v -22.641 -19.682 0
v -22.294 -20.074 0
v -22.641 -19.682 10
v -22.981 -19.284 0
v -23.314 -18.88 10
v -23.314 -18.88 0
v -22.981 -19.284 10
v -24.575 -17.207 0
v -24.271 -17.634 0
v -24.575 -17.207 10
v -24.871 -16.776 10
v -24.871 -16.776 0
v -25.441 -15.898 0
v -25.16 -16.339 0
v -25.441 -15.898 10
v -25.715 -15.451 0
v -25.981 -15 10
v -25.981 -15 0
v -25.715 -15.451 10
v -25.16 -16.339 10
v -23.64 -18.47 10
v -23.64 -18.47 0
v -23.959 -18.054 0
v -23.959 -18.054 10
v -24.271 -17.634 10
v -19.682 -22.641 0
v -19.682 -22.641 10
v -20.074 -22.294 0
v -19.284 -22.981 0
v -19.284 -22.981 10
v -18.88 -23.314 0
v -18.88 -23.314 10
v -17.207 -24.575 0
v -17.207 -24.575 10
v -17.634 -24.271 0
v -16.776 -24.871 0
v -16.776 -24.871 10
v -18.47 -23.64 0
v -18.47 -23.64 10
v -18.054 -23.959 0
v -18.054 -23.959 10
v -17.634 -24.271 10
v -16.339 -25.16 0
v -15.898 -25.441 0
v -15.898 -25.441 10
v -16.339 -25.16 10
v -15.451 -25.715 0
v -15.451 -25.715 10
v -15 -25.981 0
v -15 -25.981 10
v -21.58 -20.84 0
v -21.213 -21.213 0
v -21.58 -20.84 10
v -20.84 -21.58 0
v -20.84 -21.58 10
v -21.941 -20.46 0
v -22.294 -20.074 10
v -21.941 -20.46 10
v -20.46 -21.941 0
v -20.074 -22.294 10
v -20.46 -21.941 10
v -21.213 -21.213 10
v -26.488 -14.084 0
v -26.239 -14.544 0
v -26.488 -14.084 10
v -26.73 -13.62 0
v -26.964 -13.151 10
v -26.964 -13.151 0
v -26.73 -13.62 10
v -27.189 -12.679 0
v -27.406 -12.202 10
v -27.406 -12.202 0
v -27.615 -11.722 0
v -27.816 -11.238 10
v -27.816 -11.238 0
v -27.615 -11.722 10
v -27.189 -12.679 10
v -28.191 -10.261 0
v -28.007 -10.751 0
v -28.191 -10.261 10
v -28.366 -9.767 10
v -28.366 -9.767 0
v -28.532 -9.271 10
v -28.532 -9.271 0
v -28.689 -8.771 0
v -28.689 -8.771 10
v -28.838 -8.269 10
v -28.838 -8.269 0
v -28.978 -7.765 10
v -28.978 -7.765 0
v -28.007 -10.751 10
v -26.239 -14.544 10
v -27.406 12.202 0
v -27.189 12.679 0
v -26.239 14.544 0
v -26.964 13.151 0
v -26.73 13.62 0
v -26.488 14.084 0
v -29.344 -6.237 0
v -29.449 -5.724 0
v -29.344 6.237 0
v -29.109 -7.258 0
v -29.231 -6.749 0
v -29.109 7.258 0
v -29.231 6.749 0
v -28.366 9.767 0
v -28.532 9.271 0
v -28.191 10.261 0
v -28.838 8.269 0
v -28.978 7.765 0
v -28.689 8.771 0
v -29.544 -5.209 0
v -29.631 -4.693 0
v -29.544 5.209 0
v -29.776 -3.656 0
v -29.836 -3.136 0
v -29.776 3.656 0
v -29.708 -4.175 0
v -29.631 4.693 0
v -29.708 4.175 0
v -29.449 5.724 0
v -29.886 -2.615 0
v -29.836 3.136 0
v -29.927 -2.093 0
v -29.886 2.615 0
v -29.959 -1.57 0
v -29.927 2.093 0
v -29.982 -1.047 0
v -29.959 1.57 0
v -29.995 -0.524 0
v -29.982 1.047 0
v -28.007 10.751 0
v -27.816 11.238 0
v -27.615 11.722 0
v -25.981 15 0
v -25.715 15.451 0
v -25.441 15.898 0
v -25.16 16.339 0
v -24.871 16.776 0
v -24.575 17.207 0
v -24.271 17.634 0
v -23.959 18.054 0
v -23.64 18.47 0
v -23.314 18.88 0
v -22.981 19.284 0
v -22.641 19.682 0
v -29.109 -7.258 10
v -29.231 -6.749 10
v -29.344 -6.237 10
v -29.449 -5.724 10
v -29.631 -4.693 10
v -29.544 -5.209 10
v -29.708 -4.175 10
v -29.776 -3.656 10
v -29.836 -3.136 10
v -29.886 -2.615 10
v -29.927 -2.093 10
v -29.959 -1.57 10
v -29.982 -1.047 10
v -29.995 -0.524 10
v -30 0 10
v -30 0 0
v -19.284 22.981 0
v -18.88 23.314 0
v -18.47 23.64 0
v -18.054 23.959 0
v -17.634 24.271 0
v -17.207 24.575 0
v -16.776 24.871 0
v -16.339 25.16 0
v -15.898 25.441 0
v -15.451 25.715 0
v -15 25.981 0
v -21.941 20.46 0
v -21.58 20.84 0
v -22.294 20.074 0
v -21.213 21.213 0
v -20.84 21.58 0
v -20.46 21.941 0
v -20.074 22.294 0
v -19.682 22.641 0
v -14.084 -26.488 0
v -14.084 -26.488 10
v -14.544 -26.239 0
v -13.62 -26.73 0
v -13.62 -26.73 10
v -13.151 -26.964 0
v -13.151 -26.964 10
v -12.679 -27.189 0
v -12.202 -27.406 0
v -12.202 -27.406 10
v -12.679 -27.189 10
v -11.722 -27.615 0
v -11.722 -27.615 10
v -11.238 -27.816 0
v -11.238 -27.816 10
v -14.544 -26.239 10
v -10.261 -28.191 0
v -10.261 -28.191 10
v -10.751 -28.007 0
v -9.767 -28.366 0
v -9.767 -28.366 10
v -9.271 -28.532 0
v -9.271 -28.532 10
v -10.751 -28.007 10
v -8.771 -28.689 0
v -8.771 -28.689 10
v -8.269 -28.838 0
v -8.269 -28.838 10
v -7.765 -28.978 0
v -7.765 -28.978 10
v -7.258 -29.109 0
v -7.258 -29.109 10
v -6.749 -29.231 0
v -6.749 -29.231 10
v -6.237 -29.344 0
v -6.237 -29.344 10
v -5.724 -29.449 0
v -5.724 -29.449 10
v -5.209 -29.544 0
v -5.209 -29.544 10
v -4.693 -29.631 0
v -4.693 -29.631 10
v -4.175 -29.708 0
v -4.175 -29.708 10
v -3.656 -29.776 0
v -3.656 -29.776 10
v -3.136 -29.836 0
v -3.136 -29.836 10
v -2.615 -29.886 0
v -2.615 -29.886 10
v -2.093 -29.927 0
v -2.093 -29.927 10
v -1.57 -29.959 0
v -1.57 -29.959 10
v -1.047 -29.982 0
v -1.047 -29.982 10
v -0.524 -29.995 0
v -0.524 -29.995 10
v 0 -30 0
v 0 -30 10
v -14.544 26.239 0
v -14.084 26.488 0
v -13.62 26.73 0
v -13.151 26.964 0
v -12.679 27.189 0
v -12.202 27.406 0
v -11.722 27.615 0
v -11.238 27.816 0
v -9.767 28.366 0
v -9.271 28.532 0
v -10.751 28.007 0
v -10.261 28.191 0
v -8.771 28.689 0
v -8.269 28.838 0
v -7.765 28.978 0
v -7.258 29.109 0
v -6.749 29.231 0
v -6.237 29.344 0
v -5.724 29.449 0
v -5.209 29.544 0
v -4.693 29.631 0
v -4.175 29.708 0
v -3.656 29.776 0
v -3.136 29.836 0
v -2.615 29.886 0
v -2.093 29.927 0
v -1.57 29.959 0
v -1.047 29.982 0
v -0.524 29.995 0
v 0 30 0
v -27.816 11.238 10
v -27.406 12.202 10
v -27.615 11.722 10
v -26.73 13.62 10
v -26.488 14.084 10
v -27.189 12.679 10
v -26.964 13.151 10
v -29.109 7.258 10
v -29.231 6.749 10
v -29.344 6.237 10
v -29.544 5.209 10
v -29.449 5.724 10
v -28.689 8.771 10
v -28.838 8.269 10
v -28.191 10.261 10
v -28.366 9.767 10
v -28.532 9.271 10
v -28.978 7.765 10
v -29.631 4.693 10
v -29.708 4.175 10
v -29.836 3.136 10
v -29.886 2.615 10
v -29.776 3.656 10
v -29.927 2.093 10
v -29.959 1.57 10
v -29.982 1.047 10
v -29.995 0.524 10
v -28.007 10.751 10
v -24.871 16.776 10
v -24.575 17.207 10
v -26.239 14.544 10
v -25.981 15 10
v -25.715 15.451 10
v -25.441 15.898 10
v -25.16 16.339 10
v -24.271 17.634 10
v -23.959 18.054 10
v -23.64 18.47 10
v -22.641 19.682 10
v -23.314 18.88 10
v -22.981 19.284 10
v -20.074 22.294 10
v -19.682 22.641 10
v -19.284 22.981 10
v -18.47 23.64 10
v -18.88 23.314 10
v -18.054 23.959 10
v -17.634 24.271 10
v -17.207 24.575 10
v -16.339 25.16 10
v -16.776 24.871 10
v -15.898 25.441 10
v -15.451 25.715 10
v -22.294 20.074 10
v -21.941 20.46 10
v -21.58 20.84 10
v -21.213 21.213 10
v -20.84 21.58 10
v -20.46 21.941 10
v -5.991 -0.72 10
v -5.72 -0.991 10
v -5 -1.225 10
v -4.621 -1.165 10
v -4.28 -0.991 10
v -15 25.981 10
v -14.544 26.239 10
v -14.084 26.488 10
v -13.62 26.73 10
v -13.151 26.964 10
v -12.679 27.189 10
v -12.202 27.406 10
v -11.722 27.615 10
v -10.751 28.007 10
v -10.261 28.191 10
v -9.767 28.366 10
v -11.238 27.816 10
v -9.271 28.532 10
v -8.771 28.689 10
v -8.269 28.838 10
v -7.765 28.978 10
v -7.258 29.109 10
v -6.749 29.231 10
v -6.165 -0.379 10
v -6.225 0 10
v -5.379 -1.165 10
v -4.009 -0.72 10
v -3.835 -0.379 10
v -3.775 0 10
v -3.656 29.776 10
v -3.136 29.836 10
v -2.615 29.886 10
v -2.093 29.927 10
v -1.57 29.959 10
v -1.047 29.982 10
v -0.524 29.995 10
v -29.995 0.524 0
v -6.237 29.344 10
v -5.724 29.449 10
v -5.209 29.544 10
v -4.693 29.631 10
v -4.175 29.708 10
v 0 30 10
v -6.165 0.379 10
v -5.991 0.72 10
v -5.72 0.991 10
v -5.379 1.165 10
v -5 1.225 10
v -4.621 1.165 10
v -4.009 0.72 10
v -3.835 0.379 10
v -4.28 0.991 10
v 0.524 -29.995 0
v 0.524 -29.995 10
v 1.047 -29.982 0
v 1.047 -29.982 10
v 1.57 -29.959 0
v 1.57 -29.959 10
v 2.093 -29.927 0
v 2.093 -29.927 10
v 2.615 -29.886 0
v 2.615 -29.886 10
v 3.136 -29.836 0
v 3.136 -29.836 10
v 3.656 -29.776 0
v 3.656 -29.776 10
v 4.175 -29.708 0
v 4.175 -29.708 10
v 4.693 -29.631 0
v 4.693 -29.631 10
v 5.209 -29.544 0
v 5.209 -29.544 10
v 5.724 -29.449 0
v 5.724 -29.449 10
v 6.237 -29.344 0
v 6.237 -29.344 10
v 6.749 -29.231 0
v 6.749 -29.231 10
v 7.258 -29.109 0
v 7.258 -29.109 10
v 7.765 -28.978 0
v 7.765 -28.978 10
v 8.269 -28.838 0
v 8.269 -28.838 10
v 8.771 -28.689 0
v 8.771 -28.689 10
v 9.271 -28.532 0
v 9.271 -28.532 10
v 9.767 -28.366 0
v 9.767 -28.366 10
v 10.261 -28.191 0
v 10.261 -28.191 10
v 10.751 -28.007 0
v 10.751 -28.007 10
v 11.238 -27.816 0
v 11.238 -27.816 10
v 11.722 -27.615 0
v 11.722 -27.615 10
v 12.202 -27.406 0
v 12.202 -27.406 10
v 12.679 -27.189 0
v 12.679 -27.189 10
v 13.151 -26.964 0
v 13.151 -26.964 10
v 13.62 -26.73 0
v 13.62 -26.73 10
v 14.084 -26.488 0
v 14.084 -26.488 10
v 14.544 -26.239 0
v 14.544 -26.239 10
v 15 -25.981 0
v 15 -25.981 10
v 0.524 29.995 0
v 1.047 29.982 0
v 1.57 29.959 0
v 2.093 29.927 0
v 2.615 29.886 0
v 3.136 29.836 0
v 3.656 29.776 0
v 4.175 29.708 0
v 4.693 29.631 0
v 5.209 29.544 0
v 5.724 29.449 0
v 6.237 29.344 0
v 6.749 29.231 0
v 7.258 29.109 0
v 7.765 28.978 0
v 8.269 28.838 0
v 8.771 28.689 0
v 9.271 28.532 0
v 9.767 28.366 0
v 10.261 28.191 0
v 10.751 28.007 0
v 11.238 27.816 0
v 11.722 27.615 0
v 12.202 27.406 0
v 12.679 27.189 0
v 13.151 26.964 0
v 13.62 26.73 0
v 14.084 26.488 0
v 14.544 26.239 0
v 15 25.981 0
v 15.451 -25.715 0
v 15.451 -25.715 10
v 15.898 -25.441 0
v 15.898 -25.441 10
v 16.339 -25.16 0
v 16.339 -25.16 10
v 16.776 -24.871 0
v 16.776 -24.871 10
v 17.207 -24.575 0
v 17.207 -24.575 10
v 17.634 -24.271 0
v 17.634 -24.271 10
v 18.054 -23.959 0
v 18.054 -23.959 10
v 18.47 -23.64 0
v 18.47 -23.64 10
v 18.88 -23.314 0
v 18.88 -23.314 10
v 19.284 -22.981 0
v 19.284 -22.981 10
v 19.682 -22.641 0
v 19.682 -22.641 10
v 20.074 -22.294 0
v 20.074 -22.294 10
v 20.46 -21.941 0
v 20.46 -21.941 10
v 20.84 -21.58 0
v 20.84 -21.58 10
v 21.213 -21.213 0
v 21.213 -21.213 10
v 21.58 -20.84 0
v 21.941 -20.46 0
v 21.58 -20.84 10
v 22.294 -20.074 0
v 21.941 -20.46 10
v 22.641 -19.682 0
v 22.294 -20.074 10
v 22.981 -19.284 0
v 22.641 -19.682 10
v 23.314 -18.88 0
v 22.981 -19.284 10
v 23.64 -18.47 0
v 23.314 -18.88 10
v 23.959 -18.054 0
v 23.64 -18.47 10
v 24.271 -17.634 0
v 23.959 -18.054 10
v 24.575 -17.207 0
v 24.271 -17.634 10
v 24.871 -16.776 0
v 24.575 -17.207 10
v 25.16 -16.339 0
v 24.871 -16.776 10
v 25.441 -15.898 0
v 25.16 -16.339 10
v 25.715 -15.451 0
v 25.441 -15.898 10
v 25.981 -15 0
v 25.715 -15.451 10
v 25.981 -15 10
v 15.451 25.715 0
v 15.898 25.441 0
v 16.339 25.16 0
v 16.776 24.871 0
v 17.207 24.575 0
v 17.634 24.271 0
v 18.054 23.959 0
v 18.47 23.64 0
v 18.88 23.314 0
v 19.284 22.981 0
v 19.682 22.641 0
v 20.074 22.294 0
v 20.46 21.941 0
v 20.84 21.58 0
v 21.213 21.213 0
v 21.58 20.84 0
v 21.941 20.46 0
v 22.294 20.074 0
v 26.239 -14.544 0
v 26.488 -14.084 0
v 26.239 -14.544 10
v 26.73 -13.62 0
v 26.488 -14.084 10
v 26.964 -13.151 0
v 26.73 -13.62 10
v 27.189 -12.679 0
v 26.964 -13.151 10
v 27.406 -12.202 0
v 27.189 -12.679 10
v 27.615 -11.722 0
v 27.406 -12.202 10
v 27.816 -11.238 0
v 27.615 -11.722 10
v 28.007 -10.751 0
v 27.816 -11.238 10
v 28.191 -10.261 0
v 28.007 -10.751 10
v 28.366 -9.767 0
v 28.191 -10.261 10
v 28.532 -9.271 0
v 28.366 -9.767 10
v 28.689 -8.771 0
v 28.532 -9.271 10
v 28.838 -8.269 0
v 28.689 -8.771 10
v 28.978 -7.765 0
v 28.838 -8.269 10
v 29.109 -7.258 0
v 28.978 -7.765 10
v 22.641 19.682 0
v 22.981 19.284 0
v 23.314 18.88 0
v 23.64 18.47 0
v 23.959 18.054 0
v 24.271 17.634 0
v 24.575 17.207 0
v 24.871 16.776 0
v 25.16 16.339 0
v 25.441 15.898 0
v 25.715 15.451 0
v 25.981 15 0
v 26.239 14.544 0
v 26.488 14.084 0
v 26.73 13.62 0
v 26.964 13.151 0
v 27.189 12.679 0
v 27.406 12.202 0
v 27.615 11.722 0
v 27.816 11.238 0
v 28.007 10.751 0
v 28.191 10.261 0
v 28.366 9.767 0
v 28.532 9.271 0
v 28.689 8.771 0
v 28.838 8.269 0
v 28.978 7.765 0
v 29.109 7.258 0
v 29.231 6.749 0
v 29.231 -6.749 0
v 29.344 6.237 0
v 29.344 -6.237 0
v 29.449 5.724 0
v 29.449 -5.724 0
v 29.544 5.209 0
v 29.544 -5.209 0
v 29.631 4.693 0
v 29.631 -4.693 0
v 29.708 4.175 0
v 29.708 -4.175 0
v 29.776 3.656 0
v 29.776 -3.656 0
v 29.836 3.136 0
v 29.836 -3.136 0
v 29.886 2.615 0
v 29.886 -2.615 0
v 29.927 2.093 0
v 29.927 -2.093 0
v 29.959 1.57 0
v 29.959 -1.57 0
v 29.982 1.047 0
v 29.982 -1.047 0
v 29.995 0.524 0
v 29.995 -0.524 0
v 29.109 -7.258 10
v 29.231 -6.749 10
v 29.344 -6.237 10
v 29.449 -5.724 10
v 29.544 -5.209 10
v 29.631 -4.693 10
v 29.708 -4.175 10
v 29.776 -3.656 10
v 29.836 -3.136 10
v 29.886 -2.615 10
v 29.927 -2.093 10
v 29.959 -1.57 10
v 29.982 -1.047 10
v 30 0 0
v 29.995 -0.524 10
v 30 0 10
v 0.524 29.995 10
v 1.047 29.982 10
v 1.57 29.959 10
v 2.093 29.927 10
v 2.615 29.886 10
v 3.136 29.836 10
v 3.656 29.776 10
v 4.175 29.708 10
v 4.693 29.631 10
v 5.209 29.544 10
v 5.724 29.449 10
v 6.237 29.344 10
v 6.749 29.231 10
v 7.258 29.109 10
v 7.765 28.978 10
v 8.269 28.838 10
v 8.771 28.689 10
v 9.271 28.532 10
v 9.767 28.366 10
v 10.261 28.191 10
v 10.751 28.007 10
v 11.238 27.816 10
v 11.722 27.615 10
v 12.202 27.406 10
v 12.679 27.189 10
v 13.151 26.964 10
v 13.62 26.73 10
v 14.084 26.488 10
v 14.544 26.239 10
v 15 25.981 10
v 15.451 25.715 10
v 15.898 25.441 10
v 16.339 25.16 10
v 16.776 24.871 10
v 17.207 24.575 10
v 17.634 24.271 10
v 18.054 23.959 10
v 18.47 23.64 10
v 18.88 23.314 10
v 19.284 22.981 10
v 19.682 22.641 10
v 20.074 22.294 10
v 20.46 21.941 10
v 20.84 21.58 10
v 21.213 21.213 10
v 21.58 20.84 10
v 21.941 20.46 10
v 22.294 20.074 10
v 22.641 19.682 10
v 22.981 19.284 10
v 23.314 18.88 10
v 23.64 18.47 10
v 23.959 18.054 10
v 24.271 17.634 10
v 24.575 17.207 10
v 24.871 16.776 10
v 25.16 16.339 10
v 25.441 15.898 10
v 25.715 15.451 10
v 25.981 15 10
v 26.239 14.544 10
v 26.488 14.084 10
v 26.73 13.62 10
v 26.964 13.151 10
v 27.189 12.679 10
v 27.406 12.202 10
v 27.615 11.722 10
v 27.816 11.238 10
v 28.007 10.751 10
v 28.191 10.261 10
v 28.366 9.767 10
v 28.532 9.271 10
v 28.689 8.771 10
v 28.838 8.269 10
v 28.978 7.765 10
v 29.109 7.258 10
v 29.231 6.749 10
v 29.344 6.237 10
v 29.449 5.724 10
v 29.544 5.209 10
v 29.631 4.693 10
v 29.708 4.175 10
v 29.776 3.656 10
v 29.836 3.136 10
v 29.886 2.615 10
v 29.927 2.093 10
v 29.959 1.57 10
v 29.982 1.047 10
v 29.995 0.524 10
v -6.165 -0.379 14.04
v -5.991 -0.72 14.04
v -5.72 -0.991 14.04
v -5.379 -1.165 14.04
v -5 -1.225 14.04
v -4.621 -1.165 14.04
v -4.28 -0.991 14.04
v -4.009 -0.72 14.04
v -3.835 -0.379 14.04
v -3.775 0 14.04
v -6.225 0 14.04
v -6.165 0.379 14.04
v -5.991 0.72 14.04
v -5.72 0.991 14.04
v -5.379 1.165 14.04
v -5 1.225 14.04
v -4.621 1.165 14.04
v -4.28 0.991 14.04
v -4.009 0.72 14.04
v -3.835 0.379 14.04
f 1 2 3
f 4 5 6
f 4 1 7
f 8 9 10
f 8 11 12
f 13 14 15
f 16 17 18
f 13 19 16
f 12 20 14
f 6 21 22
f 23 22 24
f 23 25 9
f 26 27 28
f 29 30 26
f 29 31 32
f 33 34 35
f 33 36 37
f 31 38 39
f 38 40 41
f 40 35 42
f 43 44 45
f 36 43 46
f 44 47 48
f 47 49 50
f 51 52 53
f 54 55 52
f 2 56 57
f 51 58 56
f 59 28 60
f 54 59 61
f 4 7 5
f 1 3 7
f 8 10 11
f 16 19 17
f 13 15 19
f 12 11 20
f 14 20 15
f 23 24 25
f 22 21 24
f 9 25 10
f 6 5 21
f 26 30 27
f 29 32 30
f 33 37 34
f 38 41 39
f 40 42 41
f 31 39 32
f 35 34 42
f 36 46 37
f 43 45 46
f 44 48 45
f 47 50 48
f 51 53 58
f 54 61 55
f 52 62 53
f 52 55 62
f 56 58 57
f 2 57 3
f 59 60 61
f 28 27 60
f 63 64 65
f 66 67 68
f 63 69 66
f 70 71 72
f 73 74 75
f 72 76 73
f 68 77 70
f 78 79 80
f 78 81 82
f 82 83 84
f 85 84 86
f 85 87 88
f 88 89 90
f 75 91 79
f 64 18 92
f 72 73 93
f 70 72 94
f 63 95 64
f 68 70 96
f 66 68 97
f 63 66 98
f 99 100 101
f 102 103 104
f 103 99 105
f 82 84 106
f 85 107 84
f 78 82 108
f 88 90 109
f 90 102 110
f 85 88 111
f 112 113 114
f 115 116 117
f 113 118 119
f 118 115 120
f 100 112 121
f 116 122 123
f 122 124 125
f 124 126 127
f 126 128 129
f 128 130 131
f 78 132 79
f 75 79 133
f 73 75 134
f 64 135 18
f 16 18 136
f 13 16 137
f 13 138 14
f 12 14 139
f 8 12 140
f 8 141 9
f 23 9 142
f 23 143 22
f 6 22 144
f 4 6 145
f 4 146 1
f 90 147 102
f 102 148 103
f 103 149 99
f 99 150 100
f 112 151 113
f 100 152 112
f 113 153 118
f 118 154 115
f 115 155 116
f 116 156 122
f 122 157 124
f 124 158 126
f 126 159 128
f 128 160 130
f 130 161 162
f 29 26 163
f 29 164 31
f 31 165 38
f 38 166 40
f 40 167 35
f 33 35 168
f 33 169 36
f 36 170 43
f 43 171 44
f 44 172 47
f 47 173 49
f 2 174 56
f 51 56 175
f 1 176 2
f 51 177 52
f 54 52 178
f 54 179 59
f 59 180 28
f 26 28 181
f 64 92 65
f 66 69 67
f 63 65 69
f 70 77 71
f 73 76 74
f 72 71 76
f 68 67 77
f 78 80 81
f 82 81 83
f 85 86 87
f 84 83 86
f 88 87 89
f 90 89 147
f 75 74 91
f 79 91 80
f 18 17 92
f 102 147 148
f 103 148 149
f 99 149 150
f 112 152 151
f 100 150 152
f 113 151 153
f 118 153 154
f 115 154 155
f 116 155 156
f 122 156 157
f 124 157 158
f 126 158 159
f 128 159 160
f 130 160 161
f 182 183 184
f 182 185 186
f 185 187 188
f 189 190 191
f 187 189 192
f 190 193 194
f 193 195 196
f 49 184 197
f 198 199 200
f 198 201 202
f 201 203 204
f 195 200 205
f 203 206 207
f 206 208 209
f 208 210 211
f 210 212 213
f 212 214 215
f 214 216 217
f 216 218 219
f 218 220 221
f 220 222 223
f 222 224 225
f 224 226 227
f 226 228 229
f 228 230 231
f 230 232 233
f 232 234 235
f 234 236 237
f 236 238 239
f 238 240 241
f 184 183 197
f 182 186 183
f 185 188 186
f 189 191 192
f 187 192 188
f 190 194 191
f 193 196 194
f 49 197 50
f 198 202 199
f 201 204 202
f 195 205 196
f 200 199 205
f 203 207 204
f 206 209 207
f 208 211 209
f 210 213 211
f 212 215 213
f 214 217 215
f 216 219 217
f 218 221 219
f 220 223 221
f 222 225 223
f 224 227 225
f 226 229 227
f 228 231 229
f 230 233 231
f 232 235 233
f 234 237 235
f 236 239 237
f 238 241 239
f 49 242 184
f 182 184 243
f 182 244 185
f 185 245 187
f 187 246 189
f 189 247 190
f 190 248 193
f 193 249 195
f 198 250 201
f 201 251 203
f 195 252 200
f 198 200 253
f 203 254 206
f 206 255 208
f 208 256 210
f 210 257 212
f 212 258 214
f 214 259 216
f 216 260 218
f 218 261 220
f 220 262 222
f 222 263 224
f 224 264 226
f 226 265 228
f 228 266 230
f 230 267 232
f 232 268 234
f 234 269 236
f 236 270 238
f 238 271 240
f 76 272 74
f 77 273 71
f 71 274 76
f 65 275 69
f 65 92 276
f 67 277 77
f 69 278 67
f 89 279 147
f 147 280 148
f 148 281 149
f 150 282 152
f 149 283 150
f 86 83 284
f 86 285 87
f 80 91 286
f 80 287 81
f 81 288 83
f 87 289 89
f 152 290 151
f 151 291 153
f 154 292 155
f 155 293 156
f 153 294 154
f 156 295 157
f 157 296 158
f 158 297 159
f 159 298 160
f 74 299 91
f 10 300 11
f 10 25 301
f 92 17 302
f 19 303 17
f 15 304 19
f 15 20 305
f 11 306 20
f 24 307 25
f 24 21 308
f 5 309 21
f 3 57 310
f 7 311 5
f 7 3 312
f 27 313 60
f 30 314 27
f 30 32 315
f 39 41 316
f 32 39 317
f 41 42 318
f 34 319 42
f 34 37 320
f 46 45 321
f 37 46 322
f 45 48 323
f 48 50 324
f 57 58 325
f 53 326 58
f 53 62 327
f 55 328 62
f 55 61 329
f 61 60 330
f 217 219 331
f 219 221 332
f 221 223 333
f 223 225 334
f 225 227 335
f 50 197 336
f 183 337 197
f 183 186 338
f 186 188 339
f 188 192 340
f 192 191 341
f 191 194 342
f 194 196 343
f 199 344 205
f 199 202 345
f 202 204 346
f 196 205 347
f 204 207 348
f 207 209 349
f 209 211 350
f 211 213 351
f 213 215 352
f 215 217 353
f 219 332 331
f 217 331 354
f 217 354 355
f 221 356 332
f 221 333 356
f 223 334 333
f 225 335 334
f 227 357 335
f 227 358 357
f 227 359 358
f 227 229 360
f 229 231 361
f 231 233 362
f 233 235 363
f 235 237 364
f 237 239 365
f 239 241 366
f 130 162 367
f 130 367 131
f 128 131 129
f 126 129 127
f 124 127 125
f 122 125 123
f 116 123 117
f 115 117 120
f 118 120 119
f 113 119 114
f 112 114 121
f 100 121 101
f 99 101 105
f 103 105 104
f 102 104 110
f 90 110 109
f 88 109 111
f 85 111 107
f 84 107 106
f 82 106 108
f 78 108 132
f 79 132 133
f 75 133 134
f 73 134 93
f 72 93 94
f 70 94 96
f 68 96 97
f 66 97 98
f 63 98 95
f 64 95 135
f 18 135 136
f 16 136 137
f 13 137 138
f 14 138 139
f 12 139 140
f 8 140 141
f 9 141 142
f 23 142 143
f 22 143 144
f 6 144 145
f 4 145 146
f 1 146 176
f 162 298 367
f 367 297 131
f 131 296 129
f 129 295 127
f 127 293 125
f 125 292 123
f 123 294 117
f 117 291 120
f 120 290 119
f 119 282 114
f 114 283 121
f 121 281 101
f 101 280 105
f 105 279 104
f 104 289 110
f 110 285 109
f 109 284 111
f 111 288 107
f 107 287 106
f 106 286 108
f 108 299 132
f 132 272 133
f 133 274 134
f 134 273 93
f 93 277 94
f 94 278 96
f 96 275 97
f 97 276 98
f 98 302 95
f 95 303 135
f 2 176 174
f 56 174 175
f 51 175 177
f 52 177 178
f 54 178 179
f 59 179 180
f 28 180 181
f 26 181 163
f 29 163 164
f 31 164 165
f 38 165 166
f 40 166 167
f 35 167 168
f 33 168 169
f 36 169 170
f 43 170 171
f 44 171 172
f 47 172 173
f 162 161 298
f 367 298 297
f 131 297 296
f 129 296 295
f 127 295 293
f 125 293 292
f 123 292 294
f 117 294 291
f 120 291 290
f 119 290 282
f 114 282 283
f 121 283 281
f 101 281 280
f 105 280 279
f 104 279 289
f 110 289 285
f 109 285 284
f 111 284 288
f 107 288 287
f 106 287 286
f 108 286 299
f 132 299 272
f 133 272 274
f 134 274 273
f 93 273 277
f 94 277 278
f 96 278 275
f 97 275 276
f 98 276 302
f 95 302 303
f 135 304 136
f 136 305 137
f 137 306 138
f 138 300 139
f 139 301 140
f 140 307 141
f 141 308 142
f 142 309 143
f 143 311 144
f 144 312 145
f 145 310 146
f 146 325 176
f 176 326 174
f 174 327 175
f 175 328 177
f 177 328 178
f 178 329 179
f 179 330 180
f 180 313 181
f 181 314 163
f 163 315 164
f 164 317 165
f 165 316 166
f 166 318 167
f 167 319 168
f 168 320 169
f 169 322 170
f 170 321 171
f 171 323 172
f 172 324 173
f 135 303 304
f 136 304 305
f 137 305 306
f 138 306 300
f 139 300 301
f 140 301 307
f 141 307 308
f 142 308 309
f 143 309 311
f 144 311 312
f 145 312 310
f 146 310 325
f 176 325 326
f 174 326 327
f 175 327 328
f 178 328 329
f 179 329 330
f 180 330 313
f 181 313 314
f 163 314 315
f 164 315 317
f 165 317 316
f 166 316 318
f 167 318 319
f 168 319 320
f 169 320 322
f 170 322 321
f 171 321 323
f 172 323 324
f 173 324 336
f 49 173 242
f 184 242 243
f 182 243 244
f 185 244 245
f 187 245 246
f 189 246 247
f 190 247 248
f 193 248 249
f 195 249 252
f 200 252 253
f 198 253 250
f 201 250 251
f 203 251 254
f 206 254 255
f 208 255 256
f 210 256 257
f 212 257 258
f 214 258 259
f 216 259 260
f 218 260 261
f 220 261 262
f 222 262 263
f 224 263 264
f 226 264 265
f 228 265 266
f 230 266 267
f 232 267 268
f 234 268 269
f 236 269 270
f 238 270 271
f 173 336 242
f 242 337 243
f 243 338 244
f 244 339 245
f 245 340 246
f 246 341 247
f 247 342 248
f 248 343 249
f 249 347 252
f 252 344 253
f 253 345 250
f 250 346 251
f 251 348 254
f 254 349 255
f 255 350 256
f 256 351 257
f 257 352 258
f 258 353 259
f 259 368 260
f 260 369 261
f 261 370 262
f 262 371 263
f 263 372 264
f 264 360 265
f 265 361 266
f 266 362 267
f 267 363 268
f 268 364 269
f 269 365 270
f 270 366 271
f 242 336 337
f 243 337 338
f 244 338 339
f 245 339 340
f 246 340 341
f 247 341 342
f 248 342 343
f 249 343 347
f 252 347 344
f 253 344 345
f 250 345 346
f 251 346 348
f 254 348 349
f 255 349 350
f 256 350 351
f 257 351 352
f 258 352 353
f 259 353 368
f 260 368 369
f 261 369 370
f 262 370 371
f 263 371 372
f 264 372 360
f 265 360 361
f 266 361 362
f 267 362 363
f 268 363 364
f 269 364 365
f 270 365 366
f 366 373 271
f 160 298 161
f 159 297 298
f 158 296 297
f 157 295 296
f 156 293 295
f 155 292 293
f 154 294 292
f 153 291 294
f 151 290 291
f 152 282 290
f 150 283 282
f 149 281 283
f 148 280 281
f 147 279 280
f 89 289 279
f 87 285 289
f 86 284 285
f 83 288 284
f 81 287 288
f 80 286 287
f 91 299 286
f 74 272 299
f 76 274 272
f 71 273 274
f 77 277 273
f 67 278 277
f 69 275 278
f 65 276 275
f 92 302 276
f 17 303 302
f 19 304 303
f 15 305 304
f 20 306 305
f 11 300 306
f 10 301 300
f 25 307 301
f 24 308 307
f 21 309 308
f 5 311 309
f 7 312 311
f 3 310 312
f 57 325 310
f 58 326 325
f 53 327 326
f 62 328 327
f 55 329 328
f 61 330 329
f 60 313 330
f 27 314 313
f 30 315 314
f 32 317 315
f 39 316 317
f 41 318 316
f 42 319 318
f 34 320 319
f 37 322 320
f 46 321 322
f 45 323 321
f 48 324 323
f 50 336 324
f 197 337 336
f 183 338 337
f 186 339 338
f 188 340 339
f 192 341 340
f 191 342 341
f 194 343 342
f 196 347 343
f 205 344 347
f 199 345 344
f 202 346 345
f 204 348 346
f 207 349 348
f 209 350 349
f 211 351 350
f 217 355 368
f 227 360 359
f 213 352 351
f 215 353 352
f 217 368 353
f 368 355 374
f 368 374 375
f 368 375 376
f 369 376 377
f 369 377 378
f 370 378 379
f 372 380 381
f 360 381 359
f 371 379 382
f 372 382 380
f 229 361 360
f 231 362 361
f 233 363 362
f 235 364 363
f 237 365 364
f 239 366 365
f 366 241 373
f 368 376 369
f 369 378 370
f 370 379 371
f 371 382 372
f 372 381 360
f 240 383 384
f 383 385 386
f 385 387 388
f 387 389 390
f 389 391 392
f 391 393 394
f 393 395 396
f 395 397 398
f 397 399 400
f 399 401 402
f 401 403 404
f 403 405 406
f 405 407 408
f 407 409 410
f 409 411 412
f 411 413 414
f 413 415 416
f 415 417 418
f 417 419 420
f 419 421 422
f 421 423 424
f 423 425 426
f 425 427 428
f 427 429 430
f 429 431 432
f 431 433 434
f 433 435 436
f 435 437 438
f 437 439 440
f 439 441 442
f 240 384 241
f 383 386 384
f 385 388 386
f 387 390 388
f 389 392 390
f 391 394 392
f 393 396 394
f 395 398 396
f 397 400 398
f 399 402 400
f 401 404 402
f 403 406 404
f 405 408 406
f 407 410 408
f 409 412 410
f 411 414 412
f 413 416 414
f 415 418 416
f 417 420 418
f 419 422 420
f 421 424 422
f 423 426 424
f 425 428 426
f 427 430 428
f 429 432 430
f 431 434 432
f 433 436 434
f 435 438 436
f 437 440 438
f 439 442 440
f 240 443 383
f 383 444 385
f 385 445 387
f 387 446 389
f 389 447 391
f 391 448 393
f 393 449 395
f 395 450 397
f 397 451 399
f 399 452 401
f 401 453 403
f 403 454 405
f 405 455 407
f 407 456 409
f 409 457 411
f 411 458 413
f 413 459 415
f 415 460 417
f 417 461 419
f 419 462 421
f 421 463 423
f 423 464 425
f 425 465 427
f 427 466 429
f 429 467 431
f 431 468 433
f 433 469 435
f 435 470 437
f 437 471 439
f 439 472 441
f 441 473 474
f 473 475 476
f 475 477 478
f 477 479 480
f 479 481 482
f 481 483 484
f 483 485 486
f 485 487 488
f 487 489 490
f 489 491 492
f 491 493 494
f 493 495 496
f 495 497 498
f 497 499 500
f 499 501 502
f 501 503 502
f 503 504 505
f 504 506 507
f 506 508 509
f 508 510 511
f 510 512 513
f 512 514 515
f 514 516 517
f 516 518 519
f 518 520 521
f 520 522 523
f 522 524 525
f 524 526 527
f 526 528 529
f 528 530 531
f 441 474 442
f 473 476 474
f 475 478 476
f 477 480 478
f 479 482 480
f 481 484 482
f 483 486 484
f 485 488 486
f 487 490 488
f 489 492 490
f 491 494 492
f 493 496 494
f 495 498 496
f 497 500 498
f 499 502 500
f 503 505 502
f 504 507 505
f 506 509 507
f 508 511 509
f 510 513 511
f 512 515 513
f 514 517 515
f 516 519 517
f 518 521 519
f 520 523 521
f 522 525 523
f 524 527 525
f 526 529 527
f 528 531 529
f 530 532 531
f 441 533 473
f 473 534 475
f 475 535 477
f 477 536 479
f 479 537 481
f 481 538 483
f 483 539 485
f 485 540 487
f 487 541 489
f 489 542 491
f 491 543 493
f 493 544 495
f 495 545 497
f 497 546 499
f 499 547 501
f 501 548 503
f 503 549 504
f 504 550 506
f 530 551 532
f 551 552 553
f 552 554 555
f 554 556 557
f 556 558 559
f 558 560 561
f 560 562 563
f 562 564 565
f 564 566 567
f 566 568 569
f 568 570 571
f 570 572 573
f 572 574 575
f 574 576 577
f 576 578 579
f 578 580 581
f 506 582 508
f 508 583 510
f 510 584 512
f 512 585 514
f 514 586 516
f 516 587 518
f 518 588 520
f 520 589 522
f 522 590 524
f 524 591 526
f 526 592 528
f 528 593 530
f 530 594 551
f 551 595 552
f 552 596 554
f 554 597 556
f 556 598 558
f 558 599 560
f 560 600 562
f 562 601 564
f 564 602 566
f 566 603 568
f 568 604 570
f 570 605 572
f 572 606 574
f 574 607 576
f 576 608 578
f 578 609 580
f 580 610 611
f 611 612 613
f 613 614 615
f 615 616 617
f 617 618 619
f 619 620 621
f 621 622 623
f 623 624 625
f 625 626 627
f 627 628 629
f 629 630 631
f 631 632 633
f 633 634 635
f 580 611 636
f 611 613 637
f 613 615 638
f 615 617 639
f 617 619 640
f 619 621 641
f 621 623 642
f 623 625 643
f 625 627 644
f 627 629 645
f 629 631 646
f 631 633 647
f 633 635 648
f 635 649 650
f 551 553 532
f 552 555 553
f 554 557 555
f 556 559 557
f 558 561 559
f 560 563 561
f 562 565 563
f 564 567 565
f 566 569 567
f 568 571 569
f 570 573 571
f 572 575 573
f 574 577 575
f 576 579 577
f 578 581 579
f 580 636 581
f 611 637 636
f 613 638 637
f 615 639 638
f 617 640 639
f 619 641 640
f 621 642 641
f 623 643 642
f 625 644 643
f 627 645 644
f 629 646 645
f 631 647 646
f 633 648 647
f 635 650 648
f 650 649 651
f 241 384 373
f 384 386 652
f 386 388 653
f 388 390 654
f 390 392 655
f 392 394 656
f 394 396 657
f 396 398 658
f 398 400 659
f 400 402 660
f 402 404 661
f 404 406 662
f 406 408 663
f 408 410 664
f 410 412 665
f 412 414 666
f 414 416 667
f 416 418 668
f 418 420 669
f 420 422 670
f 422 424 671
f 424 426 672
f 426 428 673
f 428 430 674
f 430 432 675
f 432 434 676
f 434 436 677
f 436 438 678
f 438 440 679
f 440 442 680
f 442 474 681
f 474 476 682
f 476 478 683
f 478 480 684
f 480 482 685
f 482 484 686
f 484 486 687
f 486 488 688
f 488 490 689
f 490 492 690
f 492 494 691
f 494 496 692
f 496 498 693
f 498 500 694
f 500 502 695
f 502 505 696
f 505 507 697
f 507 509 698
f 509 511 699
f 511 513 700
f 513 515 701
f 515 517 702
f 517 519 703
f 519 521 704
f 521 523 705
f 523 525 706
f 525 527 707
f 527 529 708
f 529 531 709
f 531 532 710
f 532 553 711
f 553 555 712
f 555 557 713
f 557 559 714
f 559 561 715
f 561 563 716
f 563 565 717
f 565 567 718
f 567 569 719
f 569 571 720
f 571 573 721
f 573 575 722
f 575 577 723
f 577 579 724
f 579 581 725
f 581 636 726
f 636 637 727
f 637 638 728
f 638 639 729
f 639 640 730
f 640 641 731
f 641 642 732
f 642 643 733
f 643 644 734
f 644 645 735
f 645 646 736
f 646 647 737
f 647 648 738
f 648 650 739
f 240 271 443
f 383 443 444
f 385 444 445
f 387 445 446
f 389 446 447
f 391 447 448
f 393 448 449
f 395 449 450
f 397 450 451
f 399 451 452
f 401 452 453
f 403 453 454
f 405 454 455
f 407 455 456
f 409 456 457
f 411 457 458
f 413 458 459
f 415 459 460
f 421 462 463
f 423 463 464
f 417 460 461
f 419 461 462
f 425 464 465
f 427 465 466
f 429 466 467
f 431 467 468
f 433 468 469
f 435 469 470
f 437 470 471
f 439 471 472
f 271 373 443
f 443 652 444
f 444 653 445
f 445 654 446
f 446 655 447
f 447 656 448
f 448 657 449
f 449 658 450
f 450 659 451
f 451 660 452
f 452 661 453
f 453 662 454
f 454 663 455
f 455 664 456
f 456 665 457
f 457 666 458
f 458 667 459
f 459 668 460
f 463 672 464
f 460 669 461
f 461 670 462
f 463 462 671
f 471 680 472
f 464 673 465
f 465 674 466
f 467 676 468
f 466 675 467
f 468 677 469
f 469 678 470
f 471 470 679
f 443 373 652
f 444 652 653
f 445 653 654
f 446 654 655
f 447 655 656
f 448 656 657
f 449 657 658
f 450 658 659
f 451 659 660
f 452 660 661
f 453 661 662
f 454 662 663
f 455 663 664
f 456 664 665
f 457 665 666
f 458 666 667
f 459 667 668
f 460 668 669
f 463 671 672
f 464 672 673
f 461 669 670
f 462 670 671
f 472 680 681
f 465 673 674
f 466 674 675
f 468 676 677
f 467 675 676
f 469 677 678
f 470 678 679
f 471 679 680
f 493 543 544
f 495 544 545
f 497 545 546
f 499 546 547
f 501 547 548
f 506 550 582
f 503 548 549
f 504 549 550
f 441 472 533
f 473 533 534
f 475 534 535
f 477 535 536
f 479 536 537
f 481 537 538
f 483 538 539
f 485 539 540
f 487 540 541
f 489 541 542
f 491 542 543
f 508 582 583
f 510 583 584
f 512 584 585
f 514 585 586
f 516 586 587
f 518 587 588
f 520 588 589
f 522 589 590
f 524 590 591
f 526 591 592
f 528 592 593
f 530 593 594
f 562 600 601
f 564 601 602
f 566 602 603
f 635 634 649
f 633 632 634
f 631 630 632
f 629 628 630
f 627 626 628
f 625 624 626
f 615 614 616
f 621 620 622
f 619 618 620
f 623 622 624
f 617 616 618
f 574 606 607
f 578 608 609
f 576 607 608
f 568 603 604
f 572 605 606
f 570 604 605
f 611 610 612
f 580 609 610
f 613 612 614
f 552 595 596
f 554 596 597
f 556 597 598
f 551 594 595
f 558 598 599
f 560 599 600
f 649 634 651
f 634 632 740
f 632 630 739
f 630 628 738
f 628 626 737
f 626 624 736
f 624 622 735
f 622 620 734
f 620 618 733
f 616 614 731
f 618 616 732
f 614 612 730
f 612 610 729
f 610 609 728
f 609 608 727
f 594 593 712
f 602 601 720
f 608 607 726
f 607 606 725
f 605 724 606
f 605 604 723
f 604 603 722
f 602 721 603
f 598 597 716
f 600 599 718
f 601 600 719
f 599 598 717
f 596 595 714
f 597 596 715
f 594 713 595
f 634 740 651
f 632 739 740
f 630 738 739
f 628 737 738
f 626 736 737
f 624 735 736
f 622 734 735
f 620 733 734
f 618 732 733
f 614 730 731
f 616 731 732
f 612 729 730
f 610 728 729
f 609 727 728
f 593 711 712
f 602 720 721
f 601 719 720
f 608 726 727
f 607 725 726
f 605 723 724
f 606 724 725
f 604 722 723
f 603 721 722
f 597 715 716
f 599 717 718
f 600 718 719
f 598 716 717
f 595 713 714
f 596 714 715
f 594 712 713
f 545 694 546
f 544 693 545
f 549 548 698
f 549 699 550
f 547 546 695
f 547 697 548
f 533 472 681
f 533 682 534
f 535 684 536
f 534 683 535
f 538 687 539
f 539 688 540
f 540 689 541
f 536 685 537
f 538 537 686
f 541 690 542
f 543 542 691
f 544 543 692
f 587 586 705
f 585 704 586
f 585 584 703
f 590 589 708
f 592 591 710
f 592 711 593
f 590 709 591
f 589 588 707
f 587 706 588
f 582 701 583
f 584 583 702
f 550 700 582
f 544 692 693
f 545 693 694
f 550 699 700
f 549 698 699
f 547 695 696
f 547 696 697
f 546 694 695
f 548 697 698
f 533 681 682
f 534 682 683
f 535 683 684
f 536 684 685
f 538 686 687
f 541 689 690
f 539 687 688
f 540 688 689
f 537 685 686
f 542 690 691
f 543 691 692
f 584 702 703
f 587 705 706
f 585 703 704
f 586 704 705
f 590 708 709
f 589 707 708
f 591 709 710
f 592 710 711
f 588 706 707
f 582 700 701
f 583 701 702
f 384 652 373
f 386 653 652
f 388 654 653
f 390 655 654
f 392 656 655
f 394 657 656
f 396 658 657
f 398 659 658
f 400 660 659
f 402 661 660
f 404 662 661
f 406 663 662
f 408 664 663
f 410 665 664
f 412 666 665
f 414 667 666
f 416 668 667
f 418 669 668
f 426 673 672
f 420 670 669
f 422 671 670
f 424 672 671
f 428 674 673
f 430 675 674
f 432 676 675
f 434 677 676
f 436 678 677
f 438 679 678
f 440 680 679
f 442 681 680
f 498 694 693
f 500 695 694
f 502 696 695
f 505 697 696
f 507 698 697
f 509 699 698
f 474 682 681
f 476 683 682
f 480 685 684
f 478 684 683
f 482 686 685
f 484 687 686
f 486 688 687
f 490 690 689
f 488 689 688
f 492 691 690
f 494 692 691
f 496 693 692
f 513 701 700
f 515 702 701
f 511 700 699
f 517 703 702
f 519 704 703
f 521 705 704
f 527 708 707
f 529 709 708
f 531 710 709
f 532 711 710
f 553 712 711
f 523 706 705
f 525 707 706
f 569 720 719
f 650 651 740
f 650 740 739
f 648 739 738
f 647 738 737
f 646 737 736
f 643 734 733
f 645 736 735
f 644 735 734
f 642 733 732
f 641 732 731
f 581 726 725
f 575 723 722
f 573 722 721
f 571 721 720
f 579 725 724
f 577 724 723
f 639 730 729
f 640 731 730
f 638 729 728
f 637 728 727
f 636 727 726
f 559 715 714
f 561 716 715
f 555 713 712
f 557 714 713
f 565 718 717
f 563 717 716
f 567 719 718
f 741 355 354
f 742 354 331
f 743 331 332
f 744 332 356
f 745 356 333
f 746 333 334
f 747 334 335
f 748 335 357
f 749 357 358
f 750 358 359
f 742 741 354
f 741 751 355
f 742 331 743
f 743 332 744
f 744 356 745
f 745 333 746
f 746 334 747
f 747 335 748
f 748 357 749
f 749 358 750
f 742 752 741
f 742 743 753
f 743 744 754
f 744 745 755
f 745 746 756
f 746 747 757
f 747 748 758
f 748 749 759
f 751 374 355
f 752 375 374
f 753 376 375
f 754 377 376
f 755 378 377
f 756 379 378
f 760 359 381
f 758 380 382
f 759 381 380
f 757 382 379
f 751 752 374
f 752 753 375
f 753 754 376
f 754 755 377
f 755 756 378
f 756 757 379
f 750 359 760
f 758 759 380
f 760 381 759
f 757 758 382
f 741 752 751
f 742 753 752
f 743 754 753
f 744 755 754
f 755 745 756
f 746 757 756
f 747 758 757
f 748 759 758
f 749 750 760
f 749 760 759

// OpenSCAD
// SPDX-License-Identifier: MIT
$fa=1;
$fs=0.4;

base_diam = 60;            // Based on the widest part of the funko figure
base_thickness = 10;
attach_point_diam = 2.65;  // This is the exact size, make adjustments for proper fitment
attach_post_to_center = 5; // If your attach point isn't center, how far off center should it be
attach_post_h = 5;         // This is the exact size, make adjustments for proper fitment

// base();
// post();
popstand();

module popstand()
{
   base();
   translate([(0-attach_post_to_center), 0, (base_thickness-(attach_post_h-0.04))])
      post();
}

module base()
{
   cylinder(d=base_diam, h=base_thickness);
}

module post()
{
   cylinder(d=(attach_point_diam-0.20), h=attach_post_h+4);
}
